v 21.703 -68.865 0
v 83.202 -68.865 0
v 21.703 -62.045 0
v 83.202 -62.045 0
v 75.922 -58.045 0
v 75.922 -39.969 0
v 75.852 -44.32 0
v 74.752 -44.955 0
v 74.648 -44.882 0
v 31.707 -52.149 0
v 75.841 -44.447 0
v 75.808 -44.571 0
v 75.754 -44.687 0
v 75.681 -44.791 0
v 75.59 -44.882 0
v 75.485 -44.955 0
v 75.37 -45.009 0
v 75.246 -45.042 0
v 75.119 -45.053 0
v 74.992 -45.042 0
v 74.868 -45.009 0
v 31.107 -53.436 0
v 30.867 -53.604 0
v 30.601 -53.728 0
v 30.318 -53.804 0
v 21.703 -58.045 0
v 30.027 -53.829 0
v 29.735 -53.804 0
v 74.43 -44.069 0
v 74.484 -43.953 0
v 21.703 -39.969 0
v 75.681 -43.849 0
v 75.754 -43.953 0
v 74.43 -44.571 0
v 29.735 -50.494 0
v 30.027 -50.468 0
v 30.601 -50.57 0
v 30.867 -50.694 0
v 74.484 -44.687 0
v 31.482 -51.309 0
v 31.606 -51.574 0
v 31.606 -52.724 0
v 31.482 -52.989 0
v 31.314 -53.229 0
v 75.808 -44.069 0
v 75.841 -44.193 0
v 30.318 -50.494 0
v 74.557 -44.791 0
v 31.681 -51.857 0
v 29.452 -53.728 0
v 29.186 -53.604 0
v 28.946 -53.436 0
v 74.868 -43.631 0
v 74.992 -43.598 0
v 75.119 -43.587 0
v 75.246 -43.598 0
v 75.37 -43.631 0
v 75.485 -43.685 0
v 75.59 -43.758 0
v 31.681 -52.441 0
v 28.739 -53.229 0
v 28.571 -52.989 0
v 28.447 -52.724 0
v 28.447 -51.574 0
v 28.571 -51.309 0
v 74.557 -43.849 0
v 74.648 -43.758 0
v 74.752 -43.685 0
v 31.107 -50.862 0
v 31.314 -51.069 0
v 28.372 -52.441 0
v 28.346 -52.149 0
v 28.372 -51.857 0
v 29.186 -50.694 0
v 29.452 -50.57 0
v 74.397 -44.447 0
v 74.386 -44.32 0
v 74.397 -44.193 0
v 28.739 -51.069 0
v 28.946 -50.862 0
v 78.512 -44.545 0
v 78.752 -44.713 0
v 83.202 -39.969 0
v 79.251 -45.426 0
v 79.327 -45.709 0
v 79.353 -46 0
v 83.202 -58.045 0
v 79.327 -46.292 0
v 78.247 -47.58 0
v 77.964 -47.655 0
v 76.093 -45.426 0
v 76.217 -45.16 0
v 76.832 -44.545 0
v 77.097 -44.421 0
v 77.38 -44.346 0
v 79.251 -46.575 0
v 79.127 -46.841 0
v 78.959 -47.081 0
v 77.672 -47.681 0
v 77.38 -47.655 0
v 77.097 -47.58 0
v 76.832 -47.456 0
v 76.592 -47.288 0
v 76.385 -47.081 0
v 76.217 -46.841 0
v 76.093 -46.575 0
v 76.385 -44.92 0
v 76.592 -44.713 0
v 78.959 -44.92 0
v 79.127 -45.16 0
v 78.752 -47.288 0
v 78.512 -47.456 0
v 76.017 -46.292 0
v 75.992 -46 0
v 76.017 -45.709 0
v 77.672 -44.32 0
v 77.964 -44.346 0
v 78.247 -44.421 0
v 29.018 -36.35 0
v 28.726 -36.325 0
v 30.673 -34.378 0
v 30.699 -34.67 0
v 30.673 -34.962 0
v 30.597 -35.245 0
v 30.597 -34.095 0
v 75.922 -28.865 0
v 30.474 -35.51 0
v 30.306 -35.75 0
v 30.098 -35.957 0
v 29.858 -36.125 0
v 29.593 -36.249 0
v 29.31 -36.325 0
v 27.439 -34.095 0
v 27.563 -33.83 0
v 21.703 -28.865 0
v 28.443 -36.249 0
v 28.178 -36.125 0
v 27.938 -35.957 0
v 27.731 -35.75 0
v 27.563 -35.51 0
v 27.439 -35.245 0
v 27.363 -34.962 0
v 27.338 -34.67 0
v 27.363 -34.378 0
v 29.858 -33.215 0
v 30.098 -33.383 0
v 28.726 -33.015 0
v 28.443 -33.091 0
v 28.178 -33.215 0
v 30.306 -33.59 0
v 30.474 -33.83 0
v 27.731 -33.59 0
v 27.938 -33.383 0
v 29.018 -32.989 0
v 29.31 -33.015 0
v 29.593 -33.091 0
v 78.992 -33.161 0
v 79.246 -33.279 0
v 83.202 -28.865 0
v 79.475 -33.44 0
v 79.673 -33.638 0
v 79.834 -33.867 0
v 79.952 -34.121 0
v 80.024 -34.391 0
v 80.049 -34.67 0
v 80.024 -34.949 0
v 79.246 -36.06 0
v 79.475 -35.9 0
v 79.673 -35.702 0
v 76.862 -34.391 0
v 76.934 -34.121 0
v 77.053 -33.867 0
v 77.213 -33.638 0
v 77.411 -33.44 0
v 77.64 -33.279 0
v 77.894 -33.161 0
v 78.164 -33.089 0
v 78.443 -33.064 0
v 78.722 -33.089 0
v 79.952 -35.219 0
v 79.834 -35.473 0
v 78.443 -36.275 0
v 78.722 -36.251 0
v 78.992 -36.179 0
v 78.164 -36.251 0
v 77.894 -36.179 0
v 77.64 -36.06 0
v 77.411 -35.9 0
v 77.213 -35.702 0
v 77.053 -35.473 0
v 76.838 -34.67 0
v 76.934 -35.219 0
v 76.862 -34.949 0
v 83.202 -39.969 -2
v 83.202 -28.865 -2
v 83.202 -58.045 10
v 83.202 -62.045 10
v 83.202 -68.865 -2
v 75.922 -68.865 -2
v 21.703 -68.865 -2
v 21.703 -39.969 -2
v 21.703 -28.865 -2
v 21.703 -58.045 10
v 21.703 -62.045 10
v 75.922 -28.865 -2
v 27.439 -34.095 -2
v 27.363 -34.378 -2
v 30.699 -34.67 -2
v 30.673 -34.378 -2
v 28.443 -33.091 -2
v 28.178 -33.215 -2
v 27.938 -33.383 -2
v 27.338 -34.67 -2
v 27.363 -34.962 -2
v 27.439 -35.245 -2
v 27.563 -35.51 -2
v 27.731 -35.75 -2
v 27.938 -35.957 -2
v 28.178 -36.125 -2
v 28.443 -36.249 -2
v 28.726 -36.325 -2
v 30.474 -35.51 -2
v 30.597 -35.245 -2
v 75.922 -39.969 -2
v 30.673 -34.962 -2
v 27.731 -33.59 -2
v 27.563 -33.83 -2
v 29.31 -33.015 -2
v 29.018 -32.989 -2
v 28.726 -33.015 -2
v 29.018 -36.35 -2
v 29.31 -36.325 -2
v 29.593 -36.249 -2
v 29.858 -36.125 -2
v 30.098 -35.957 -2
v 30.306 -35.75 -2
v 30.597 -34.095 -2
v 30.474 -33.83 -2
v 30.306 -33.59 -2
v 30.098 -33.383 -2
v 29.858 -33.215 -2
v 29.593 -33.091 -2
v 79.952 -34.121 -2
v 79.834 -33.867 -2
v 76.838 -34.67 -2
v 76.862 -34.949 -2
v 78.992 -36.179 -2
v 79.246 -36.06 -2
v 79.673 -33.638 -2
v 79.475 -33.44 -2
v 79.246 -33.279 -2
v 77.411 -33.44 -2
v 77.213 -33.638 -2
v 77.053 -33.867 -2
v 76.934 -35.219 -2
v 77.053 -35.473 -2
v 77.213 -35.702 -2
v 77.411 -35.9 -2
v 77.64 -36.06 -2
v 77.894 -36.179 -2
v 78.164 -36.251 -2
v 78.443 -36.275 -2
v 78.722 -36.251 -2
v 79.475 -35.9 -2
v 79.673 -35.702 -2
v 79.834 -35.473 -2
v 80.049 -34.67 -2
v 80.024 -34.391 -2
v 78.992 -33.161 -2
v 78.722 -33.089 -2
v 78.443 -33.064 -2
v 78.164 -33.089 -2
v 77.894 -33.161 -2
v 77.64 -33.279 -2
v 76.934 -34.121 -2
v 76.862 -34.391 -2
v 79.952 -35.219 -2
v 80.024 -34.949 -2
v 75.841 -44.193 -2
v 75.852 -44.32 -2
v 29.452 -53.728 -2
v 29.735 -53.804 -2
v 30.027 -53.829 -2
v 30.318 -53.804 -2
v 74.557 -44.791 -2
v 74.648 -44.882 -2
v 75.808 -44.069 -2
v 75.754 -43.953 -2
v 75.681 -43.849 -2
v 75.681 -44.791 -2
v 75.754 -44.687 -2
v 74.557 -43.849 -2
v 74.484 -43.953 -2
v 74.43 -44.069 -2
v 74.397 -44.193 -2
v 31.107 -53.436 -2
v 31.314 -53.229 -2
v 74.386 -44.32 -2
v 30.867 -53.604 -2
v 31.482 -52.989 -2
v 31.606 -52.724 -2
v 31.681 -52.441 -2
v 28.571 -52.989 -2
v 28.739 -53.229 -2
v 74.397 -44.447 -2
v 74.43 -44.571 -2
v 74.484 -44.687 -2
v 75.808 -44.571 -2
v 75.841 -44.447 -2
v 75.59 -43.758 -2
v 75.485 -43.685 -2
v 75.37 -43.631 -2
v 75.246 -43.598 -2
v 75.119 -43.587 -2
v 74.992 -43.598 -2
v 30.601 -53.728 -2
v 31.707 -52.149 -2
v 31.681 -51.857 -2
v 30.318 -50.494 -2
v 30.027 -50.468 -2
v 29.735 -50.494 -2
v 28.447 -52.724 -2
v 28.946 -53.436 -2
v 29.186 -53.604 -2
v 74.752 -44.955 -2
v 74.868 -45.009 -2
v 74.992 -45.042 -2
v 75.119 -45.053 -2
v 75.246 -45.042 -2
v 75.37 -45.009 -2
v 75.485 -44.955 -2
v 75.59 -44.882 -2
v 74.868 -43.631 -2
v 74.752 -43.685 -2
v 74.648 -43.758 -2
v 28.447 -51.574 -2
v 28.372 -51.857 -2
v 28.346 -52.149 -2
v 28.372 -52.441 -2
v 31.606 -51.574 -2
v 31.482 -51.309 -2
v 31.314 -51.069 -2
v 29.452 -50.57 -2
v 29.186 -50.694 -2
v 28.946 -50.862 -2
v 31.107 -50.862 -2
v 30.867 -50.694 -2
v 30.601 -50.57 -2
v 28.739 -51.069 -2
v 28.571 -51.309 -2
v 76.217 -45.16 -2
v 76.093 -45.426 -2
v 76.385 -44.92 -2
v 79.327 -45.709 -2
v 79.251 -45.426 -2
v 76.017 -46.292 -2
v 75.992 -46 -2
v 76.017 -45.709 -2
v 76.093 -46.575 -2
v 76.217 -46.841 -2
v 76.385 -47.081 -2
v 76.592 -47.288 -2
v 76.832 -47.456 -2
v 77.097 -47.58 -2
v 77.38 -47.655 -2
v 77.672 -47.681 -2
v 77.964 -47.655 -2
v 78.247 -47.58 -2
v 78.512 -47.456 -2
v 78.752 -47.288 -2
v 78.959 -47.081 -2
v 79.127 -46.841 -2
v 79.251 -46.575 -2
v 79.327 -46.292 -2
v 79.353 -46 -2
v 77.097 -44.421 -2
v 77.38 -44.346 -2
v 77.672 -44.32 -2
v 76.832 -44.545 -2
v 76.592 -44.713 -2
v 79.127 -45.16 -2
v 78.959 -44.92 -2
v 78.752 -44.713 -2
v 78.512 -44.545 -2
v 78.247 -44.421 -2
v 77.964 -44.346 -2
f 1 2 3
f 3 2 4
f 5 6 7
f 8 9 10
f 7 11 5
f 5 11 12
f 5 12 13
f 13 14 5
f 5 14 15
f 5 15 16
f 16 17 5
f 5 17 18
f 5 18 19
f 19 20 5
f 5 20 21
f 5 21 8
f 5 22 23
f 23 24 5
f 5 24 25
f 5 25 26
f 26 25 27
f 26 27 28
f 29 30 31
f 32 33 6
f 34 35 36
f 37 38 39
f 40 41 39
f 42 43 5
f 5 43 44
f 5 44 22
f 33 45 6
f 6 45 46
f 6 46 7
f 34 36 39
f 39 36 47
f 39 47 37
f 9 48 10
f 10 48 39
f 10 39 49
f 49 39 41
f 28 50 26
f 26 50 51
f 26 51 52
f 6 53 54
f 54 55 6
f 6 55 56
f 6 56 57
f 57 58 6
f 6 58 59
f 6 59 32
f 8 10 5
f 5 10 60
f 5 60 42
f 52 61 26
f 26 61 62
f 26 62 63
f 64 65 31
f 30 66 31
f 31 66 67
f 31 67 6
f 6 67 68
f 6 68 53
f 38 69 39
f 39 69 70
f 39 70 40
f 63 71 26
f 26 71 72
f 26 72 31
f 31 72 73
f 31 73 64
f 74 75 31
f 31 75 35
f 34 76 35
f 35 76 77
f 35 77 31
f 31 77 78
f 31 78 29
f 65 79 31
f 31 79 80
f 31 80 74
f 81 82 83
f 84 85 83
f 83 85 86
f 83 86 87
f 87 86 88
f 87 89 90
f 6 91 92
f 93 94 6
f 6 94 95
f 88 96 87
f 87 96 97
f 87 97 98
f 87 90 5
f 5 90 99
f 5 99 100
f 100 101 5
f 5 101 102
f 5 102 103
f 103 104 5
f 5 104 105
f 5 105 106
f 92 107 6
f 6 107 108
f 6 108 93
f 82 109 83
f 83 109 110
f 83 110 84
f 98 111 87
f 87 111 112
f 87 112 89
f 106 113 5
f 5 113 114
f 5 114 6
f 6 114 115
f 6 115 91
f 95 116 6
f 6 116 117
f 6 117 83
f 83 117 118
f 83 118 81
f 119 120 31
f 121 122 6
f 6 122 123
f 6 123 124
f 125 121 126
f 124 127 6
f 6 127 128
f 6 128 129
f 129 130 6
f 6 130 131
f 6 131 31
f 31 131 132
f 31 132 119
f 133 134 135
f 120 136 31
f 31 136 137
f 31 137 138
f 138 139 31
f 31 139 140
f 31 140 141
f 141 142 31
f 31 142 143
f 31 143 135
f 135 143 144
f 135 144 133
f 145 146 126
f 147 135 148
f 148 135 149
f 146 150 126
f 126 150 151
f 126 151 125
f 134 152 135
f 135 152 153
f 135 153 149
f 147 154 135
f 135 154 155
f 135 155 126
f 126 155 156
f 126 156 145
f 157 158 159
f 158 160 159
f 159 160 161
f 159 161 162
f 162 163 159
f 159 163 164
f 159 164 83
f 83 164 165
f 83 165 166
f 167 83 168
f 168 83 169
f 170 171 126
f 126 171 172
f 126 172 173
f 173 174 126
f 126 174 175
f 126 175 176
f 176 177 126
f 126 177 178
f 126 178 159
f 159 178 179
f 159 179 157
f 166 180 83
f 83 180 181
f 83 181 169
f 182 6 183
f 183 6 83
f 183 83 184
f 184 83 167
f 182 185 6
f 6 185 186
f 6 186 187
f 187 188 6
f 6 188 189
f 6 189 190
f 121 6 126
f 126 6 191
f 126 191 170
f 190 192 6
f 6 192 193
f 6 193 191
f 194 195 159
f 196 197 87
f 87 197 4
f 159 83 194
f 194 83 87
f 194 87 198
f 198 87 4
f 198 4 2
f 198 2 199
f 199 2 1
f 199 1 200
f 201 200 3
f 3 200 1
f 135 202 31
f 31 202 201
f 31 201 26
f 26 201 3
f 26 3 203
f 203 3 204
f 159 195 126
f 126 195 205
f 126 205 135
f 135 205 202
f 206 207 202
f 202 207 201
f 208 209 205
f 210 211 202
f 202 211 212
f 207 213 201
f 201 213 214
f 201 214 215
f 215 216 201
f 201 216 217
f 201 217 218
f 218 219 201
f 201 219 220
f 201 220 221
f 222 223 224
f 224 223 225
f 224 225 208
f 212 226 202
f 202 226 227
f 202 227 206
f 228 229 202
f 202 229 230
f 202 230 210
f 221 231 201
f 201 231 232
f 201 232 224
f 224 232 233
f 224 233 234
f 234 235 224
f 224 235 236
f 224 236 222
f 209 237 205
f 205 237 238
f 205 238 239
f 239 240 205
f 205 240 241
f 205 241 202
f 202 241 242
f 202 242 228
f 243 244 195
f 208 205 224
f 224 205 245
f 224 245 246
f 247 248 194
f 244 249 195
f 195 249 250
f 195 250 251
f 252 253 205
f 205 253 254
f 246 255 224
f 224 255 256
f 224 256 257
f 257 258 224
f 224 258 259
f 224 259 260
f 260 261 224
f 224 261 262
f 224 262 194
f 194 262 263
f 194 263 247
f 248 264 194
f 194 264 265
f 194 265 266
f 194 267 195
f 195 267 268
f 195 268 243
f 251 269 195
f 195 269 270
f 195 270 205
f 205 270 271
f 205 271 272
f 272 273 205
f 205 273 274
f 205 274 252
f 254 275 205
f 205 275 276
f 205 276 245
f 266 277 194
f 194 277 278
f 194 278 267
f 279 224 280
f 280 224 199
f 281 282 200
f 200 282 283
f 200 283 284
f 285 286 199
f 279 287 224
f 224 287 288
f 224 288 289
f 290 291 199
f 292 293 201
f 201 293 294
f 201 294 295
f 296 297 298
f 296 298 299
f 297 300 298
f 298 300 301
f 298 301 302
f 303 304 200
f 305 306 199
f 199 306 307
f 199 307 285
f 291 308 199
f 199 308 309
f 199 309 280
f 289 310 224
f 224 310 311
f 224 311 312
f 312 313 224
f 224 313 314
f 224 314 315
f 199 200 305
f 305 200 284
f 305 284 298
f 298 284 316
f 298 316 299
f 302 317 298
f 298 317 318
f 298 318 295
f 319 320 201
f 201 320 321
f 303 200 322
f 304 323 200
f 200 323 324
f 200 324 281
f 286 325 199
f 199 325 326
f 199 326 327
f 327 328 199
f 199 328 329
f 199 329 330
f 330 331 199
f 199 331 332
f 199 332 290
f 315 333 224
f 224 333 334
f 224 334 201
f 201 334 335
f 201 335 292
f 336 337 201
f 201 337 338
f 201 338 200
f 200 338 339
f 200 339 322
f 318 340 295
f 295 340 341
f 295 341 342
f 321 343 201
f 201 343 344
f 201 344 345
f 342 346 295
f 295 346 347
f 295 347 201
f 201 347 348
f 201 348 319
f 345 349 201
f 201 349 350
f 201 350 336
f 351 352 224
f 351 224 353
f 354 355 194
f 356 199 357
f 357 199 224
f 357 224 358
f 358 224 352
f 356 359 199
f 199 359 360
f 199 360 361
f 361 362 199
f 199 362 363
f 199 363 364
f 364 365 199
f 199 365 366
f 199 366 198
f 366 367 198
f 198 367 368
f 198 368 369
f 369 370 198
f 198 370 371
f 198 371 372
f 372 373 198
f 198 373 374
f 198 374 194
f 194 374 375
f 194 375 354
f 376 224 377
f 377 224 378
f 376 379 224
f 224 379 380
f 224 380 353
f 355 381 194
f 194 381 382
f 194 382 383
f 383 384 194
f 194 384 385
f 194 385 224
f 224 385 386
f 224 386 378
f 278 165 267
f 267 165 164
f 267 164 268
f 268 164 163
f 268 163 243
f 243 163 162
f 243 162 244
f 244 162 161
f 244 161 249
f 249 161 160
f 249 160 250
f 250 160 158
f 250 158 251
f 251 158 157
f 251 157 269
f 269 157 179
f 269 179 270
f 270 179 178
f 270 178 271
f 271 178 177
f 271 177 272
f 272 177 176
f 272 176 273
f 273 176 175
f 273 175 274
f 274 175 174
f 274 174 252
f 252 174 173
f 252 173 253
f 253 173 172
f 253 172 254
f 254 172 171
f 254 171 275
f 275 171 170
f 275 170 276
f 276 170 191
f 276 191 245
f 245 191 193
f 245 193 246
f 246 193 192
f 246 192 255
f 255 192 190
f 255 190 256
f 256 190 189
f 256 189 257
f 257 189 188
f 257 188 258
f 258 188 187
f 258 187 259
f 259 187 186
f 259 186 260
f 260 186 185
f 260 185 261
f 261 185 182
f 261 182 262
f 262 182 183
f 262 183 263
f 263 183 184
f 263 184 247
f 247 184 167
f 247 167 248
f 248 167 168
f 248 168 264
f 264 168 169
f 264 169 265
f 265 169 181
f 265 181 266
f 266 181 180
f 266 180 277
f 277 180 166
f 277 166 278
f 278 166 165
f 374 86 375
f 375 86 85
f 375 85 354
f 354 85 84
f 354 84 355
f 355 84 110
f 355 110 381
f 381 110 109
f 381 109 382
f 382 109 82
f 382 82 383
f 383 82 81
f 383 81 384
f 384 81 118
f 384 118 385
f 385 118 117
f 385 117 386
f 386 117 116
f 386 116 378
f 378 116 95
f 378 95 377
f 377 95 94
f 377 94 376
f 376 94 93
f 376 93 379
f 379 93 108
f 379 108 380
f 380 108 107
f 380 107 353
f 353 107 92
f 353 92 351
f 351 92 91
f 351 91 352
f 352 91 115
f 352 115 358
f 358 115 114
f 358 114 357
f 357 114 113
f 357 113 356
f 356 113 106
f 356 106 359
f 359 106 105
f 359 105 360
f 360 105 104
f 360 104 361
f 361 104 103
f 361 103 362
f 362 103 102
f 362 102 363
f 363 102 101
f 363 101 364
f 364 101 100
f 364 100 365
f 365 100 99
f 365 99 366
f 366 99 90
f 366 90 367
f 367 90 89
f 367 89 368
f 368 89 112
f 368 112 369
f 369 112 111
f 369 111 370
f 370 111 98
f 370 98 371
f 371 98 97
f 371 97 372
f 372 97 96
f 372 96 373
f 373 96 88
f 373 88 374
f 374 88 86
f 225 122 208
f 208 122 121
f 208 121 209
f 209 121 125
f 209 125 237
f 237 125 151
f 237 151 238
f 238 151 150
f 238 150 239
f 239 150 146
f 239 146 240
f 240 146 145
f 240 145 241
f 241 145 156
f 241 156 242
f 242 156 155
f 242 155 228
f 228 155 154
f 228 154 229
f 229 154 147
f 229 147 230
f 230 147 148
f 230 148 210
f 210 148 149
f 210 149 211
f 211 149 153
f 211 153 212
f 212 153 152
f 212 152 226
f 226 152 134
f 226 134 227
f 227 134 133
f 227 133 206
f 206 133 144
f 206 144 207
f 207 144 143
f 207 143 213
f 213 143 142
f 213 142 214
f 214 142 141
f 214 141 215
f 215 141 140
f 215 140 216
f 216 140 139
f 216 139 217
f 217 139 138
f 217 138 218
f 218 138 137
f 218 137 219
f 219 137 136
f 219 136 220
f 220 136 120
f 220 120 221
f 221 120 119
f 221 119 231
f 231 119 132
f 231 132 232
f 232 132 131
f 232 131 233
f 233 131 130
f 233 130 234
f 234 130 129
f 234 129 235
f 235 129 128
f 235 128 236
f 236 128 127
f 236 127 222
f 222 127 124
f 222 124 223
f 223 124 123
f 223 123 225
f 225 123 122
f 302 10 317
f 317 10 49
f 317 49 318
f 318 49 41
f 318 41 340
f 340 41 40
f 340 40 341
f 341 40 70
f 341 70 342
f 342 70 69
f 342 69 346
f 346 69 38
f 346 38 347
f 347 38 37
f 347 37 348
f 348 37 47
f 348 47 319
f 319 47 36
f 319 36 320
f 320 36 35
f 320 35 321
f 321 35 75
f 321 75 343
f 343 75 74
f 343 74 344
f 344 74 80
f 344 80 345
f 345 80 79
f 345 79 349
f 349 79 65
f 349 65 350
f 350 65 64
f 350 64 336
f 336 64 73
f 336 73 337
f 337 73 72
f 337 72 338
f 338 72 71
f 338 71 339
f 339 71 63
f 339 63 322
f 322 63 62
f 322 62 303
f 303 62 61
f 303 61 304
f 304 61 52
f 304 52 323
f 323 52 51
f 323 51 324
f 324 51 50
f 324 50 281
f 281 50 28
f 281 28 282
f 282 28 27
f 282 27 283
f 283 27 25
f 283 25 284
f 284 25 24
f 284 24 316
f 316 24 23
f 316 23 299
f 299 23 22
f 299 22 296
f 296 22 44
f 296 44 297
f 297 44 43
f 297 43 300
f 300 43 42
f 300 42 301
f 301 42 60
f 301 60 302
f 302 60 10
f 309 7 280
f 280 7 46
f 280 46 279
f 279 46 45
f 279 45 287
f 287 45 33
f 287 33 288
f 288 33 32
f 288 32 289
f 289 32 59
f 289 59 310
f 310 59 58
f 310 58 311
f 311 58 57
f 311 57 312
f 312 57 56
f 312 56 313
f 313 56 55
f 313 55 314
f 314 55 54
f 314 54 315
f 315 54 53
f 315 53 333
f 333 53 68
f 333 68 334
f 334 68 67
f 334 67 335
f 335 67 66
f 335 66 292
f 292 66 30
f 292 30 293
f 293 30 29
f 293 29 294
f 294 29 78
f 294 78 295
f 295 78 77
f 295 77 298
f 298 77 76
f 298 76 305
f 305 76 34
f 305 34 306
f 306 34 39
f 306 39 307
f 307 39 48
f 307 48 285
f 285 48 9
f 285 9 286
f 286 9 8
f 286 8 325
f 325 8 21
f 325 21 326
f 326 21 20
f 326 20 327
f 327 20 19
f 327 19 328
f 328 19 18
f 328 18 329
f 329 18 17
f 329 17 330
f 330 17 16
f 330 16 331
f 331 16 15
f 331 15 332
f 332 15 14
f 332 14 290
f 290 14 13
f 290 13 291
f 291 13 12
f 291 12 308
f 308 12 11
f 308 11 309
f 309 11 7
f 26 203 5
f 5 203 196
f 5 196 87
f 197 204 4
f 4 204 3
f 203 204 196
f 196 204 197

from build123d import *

# Parameters (mm, degrees)
ESQUISSE14_W       = 61.498402753
ESQUISSE14_H       = 40
ESQUISSE14_R       = 1.605618906
ESQUISSE14_R_2     = 1.680447067
ESQUISSE14_R_3     = 0.733091197
BOSS_EXTRU_1_DEPTH = 2
ESQUISSE15_W       = 61.498402753
ESQUISSE15_H       = 4
BOSS_EXTRU_2_DEPTH = 10


with BuildPart() as part:
    # Esquisse14 → Boss.-Extru.1 (new body)
    with BuildSketch(Plane.XY):
        with Locations((52.452549346, -48.865029397)):
            Rectangle(ESQUISSE14_W, ESQUISSE14_H)
        with Locations((78.443148937, -34.669848165)):
            Circle(ESQUISSE14_R, mode=Mode.SUBTRACT)
        with Locations((77.672120282, -46.000448366)):
            Circle(ESQUISSE14_R_2, mode=Mode.SUBTRACT)
        with Locations((29.018235202, -34.669848165)):
            Circle(ESQUISSE14_R_2, mode=Mode.SUBTRACT)
        with Locations((30.026503442, -52.148907634)):
            Circle(ESQUISSE14_R_2, mode=Mode.SUBTRACT)
        with Locations((75.118944162, -44.320001299)):
            Circle(ESQUISSE14_R_3, mode=Mode.SUBTRACT)
    extrude(amount=-BOSS_EXTRU_1_DEPTH)

    # Esquisse15 → Boss.-Extru.2 (add)
    with BuildSketch(Plane.XY):
        with Locations((52.452549346, -60.045029397)):
            Rectangle(ESQUISSE15_W, ESQUISSE15_H)
    extrude(amount=BOSS_EXTRU_2_DEPTH)


solid = part.part
